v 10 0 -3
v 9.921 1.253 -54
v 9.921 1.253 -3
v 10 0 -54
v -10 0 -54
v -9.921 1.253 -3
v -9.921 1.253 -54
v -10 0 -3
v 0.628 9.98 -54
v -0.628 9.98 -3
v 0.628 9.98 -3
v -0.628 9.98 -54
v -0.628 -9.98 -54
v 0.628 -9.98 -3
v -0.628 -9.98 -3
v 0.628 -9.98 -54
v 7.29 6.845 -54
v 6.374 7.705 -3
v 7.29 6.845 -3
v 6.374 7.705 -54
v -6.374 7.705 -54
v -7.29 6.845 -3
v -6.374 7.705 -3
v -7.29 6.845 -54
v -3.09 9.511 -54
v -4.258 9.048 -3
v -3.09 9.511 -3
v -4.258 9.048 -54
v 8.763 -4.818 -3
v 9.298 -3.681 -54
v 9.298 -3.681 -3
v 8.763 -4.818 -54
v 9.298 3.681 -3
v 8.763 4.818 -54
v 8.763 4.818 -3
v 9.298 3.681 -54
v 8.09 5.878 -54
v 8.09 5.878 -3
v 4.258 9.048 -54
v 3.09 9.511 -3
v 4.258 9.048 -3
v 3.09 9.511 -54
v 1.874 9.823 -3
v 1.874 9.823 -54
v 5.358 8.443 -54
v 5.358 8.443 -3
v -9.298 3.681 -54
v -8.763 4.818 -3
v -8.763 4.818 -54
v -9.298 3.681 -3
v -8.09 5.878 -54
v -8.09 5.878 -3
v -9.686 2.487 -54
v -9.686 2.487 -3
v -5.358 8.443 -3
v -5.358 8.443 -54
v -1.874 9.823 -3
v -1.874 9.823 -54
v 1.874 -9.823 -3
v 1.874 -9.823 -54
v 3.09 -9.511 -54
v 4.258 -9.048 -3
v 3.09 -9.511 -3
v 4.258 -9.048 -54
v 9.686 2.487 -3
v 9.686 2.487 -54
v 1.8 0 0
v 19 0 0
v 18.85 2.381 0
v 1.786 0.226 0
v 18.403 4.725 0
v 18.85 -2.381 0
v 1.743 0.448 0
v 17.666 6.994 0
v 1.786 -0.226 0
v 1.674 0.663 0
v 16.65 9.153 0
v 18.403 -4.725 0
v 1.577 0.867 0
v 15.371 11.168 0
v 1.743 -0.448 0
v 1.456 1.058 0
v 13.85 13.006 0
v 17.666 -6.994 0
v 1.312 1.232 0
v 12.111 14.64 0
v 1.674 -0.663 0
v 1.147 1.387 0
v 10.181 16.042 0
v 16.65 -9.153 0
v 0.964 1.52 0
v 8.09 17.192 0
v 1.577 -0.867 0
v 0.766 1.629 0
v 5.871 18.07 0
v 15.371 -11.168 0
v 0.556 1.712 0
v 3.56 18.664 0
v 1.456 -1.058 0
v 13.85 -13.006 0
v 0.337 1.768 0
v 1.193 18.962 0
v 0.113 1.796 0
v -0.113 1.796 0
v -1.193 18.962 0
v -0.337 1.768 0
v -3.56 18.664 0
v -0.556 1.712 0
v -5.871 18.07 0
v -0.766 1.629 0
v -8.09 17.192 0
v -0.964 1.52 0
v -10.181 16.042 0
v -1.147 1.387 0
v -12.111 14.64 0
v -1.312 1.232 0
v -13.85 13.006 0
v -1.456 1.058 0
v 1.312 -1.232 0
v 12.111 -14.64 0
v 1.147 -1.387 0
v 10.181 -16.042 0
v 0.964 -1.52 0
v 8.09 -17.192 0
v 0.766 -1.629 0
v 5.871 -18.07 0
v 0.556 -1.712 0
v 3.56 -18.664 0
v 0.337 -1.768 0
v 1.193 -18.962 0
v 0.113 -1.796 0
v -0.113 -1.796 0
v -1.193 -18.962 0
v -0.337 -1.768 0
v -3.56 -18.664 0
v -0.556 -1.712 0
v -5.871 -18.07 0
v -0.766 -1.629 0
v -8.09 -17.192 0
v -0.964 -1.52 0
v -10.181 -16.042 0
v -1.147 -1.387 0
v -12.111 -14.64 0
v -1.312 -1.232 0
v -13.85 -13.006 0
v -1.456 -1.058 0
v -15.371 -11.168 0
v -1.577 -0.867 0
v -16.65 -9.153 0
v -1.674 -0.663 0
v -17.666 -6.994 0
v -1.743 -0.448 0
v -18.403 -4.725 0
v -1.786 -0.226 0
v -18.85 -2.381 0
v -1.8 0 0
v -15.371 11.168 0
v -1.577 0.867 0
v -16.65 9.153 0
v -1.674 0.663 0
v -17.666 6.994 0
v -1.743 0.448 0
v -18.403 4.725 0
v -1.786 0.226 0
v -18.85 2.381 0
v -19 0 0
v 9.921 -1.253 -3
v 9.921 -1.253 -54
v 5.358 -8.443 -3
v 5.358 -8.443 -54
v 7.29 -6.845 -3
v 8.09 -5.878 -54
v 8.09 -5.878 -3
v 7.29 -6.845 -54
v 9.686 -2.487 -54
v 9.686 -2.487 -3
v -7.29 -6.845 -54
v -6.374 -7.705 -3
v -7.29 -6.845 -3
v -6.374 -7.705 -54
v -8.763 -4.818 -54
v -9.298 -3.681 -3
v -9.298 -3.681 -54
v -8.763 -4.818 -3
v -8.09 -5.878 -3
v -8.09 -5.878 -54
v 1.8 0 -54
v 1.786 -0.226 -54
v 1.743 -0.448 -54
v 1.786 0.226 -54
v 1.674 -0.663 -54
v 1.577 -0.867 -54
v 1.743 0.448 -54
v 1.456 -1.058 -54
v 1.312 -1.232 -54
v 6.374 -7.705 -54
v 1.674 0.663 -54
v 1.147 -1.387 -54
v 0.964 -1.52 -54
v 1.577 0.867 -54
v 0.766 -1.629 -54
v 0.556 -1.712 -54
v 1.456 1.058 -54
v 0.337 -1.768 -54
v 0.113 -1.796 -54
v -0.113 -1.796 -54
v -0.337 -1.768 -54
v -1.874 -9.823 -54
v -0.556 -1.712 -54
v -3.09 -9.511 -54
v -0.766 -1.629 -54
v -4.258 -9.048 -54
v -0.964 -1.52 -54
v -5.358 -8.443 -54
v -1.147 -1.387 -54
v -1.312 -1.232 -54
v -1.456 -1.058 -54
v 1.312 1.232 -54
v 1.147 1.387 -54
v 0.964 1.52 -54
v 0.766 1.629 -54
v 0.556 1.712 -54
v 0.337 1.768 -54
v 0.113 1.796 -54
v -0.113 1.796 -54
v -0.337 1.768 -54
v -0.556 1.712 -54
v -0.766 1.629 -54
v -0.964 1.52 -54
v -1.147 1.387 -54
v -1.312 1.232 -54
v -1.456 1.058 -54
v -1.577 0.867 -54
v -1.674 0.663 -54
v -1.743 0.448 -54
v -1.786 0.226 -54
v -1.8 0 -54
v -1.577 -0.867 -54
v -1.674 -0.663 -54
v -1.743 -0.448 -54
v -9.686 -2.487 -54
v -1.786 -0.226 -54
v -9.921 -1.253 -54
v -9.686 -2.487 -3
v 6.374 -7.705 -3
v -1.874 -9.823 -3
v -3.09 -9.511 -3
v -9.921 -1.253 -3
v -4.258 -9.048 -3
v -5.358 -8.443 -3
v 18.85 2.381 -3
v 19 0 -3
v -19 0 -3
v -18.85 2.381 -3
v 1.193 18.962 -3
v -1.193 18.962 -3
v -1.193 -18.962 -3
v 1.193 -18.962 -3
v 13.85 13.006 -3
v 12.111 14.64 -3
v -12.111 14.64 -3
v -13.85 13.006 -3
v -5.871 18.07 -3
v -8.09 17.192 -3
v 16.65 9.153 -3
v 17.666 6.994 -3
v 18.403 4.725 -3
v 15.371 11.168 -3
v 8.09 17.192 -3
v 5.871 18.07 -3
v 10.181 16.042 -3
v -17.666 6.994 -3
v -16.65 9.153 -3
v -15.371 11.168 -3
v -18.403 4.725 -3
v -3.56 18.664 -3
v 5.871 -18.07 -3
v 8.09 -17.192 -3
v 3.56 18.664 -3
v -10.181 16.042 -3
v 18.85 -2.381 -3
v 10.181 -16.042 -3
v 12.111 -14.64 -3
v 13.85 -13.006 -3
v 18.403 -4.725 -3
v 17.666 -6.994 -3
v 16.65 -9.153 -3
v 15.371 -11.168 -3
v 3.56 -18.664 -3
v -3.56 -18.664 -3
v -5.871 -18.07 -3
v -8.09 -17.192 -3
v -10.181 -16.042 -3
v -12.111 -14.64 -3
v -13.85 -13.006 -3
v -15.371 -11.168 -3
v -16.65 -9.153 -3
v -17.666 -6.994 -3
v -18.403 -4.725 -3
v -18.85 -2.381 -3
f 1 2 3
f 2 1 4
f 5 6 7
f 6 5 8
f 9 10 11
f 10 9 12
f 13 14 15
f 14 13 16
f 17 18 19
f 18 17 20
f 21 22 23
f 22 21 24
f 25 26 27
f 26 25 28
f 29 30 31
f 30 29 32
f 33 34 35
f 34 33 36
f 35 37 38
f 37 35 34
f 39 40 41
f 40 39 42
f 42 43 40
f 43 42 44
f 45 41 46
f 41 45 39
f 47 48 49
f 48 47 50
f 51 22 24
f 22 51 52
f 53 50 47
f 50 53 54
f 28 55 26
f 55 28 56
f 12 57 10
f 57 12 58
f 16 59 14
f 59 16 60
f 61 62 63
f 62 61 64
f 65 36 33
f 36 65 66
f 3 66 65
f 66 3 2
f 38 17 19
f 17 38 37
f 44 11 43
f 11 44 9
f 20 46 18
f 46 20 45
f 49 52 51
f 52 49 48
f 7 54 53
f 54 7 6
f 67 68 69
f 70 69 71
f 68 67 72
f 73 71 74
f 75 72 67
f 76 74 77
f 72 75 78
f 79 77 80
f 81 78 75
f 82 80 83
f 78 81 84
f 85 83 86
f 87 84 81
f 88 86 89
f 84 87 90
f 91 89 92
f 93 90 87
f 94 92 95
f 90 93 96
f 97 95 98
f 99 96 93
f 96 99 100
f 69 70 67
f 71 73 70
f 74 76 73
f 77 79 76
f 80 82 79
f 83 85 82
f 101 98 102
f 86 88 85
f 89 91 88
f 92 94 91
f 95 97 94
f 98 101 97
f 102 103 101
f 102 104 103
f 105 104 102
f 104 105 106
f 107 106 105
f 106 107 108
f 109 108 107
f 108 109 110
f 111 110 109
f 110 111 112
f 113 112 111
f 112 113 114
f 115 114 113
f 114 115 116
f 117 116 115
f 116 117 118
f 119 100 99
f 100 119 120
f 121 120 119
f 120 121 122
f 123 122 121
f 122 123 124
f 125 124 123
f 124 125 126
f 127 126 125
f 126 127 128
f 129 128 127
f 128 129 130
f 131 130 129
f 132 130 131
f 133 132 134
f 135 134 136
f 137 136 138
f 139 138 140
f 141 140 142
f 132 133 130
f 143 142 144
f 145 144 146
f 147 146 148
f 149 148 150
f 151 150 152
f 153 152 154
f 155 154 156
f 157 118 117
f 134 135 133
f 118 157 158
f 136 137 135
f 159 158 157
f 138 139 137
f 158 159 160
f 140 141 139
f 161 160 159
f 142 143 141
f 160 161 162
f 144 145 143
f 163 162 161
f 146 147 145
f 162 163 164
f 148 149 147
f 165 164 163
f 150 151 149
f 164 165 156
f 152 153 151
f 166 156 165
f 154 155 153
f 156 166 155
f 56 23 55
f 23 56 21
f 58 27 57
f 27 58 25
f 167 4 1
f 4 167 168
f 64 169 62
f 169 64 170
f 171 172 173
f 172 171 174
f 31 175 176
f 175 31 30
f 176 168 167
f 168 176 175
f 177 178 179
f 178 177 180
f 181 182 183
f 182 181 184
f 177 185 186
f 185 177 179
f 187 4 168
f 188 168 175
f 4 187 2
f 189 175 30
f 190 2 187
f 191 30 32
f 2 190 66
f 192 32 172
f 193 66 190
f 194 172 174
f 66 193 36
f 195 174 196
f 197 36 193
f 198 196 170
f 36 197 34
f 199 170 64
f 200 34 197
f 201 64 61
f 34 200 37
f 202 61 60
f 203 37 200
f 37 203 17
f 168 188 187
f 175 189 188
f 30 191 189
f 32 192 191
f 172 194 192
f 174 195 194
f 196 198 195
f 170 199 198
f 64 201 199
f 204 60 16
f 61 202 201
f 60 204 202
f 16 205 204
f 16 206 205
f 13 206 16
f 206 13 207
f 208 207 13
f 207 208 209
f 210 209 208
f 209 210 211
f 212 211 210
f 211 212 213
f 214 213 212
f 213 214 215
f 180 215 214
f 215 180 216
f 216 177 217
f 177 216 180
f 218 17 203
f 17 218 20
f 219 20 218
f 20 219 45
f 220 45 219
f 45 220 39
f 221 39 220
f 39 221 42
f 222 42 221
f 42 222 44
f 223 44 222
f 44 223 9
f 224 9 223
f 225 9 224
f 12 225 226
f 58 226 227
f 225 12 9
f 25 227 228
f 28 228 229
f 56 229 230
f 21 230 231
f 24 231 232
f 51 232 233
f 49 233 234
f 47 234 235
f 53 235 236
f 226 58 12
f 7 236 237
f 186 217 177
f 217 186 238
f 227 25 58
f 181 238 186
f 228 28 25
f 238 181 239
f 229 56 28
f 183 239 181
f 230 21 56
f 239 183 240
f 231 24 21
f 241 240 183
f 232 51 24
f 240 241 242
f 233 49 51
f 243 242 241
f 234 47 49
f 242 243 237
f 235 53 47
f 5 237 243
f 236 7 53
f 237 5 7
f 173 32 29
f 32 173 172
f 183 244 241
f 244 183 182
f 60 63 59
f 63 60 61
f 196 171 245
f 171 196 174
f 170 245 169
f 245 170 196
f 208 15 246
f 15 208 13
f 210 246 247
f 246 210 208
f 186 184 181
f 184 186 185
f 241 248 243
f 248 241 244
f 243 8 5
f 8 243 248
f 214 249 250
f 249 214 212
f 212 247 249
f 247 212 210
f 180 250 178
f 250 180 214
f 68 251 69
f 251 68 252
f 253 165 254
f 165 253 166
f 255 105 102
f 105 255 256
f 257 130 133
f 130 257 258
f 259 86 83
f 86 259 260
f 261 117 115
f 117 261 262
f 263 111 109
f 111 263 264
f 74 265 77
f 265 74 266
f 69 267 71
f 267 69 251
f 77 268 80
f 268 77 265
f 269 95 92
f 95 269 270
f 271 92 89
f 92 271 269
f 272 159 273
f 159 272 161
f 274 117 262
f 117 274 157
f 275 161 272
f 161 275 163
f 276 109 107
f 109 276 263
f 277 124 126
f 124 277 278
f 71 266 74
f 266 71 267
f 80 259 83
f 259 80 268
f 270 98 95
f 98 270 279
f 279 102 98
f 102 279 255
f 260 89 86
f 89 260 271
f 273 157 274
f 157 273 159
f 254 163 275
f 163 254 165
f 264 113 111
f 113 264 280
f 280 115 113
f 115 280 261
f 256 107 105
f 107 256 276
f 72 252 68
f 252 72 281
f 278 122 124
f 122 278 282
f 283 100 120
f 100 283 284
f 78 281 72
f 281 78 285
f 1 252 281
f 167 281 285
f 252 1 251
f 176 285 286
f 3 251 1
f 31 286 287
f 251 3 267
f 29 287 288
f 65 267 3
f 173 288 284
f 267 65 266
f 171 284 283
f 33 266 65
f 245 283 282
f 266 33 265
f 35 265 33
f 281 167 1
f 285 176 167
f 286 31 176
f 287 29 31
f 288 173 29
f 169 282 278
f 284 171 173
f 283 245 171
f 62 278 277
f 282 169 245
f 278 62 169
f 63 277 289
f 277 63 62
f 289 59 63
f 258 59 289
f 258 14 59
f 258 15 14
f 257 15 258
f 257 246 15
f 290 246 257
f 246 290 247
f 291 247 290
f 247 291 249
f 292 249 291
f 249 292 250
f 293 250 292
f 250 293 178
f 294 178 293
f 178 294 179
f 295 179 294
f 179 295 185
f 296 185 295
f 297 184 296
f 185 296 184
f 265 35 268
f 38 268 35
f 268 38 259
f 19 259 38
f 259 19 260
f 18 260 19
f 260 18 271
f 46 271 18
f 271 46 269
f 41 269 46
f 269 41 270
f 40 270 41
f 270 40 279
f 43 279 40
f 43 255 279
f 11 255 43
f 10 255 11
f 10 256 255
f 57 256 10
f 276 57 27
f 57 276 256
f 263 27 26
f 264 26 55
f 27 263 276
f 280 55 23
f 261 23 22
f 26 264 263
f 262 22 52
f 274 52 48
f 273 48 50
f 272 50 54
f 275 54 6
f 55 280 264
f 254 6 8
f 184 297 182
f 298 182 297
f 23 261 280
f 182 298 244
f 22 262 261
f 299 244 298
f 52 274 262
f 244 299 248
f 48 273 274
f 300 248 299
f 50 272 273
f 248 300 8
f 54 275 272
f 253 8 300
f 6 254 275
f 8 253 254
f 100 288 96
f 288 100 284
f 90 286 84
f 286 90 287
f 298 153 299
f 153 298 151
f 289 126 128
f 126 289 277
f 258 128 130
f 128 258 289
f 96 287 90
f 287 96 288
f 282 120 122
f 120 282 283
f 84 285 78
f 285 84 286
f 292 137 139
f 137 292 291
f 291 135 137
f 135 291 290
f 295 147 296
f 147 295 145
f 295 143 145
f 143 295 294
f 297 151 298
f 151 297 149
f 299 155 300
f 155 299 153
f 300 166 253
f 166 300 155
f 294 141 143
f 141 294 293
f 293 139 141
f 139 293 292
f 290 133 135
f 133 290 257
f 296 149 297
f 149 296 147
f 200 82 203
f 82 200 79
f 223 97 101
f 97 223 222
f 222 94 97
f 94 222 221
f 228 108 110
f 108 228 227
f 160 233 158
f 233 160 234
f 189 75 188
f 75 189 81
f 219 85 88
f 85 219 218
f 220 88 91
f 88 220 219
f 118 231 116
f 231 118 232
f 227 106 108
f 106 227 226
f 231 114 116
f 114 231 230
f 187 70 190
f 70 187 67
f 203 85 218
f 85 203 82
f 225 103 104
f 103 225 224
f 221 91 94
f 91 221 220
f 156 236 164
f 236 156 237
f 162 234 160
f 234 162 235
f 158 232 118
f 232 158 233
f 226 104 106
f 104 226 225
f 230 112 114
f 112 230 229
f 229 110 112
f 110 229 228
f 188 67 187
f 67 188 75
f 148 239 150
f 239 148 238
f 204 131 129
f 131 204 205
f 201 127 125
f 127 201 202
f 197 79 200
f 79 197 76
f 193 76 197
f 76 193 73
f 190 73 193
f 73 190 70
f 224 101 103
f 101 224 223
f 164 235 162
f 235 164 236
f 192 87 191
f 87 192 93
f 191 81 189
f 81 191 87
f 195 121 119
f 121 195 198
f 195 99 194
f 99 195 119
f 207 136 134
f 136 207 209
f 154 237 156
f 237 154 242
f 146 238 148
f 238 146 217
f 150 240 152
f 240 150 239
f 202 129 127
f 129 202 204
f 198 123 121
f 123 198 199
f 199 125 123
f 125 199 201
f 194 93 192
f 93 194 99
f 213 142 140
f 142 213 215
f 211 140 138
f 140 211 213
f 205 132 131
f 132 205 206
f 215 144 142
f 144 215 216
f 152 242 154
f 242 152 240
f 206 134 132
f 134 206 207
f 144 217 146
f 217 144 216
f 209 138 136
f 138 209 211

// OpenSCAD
$fn = 50;


difference() {
	union() {
		translate(v = [0, 0, -54.0000000000]) {
			cylinder(h = 54, r = 10.0000000000);
		}
		translate(v = [0, 0, -3.0000000000]) {
			cylinder(h = 3, r = 19.0000000000);
		}
	}
	union() {
		#translate(v = [0, 0, -54]) {
			cylinder(h = 54, r = 1.8000000000);
		}
	}
}
